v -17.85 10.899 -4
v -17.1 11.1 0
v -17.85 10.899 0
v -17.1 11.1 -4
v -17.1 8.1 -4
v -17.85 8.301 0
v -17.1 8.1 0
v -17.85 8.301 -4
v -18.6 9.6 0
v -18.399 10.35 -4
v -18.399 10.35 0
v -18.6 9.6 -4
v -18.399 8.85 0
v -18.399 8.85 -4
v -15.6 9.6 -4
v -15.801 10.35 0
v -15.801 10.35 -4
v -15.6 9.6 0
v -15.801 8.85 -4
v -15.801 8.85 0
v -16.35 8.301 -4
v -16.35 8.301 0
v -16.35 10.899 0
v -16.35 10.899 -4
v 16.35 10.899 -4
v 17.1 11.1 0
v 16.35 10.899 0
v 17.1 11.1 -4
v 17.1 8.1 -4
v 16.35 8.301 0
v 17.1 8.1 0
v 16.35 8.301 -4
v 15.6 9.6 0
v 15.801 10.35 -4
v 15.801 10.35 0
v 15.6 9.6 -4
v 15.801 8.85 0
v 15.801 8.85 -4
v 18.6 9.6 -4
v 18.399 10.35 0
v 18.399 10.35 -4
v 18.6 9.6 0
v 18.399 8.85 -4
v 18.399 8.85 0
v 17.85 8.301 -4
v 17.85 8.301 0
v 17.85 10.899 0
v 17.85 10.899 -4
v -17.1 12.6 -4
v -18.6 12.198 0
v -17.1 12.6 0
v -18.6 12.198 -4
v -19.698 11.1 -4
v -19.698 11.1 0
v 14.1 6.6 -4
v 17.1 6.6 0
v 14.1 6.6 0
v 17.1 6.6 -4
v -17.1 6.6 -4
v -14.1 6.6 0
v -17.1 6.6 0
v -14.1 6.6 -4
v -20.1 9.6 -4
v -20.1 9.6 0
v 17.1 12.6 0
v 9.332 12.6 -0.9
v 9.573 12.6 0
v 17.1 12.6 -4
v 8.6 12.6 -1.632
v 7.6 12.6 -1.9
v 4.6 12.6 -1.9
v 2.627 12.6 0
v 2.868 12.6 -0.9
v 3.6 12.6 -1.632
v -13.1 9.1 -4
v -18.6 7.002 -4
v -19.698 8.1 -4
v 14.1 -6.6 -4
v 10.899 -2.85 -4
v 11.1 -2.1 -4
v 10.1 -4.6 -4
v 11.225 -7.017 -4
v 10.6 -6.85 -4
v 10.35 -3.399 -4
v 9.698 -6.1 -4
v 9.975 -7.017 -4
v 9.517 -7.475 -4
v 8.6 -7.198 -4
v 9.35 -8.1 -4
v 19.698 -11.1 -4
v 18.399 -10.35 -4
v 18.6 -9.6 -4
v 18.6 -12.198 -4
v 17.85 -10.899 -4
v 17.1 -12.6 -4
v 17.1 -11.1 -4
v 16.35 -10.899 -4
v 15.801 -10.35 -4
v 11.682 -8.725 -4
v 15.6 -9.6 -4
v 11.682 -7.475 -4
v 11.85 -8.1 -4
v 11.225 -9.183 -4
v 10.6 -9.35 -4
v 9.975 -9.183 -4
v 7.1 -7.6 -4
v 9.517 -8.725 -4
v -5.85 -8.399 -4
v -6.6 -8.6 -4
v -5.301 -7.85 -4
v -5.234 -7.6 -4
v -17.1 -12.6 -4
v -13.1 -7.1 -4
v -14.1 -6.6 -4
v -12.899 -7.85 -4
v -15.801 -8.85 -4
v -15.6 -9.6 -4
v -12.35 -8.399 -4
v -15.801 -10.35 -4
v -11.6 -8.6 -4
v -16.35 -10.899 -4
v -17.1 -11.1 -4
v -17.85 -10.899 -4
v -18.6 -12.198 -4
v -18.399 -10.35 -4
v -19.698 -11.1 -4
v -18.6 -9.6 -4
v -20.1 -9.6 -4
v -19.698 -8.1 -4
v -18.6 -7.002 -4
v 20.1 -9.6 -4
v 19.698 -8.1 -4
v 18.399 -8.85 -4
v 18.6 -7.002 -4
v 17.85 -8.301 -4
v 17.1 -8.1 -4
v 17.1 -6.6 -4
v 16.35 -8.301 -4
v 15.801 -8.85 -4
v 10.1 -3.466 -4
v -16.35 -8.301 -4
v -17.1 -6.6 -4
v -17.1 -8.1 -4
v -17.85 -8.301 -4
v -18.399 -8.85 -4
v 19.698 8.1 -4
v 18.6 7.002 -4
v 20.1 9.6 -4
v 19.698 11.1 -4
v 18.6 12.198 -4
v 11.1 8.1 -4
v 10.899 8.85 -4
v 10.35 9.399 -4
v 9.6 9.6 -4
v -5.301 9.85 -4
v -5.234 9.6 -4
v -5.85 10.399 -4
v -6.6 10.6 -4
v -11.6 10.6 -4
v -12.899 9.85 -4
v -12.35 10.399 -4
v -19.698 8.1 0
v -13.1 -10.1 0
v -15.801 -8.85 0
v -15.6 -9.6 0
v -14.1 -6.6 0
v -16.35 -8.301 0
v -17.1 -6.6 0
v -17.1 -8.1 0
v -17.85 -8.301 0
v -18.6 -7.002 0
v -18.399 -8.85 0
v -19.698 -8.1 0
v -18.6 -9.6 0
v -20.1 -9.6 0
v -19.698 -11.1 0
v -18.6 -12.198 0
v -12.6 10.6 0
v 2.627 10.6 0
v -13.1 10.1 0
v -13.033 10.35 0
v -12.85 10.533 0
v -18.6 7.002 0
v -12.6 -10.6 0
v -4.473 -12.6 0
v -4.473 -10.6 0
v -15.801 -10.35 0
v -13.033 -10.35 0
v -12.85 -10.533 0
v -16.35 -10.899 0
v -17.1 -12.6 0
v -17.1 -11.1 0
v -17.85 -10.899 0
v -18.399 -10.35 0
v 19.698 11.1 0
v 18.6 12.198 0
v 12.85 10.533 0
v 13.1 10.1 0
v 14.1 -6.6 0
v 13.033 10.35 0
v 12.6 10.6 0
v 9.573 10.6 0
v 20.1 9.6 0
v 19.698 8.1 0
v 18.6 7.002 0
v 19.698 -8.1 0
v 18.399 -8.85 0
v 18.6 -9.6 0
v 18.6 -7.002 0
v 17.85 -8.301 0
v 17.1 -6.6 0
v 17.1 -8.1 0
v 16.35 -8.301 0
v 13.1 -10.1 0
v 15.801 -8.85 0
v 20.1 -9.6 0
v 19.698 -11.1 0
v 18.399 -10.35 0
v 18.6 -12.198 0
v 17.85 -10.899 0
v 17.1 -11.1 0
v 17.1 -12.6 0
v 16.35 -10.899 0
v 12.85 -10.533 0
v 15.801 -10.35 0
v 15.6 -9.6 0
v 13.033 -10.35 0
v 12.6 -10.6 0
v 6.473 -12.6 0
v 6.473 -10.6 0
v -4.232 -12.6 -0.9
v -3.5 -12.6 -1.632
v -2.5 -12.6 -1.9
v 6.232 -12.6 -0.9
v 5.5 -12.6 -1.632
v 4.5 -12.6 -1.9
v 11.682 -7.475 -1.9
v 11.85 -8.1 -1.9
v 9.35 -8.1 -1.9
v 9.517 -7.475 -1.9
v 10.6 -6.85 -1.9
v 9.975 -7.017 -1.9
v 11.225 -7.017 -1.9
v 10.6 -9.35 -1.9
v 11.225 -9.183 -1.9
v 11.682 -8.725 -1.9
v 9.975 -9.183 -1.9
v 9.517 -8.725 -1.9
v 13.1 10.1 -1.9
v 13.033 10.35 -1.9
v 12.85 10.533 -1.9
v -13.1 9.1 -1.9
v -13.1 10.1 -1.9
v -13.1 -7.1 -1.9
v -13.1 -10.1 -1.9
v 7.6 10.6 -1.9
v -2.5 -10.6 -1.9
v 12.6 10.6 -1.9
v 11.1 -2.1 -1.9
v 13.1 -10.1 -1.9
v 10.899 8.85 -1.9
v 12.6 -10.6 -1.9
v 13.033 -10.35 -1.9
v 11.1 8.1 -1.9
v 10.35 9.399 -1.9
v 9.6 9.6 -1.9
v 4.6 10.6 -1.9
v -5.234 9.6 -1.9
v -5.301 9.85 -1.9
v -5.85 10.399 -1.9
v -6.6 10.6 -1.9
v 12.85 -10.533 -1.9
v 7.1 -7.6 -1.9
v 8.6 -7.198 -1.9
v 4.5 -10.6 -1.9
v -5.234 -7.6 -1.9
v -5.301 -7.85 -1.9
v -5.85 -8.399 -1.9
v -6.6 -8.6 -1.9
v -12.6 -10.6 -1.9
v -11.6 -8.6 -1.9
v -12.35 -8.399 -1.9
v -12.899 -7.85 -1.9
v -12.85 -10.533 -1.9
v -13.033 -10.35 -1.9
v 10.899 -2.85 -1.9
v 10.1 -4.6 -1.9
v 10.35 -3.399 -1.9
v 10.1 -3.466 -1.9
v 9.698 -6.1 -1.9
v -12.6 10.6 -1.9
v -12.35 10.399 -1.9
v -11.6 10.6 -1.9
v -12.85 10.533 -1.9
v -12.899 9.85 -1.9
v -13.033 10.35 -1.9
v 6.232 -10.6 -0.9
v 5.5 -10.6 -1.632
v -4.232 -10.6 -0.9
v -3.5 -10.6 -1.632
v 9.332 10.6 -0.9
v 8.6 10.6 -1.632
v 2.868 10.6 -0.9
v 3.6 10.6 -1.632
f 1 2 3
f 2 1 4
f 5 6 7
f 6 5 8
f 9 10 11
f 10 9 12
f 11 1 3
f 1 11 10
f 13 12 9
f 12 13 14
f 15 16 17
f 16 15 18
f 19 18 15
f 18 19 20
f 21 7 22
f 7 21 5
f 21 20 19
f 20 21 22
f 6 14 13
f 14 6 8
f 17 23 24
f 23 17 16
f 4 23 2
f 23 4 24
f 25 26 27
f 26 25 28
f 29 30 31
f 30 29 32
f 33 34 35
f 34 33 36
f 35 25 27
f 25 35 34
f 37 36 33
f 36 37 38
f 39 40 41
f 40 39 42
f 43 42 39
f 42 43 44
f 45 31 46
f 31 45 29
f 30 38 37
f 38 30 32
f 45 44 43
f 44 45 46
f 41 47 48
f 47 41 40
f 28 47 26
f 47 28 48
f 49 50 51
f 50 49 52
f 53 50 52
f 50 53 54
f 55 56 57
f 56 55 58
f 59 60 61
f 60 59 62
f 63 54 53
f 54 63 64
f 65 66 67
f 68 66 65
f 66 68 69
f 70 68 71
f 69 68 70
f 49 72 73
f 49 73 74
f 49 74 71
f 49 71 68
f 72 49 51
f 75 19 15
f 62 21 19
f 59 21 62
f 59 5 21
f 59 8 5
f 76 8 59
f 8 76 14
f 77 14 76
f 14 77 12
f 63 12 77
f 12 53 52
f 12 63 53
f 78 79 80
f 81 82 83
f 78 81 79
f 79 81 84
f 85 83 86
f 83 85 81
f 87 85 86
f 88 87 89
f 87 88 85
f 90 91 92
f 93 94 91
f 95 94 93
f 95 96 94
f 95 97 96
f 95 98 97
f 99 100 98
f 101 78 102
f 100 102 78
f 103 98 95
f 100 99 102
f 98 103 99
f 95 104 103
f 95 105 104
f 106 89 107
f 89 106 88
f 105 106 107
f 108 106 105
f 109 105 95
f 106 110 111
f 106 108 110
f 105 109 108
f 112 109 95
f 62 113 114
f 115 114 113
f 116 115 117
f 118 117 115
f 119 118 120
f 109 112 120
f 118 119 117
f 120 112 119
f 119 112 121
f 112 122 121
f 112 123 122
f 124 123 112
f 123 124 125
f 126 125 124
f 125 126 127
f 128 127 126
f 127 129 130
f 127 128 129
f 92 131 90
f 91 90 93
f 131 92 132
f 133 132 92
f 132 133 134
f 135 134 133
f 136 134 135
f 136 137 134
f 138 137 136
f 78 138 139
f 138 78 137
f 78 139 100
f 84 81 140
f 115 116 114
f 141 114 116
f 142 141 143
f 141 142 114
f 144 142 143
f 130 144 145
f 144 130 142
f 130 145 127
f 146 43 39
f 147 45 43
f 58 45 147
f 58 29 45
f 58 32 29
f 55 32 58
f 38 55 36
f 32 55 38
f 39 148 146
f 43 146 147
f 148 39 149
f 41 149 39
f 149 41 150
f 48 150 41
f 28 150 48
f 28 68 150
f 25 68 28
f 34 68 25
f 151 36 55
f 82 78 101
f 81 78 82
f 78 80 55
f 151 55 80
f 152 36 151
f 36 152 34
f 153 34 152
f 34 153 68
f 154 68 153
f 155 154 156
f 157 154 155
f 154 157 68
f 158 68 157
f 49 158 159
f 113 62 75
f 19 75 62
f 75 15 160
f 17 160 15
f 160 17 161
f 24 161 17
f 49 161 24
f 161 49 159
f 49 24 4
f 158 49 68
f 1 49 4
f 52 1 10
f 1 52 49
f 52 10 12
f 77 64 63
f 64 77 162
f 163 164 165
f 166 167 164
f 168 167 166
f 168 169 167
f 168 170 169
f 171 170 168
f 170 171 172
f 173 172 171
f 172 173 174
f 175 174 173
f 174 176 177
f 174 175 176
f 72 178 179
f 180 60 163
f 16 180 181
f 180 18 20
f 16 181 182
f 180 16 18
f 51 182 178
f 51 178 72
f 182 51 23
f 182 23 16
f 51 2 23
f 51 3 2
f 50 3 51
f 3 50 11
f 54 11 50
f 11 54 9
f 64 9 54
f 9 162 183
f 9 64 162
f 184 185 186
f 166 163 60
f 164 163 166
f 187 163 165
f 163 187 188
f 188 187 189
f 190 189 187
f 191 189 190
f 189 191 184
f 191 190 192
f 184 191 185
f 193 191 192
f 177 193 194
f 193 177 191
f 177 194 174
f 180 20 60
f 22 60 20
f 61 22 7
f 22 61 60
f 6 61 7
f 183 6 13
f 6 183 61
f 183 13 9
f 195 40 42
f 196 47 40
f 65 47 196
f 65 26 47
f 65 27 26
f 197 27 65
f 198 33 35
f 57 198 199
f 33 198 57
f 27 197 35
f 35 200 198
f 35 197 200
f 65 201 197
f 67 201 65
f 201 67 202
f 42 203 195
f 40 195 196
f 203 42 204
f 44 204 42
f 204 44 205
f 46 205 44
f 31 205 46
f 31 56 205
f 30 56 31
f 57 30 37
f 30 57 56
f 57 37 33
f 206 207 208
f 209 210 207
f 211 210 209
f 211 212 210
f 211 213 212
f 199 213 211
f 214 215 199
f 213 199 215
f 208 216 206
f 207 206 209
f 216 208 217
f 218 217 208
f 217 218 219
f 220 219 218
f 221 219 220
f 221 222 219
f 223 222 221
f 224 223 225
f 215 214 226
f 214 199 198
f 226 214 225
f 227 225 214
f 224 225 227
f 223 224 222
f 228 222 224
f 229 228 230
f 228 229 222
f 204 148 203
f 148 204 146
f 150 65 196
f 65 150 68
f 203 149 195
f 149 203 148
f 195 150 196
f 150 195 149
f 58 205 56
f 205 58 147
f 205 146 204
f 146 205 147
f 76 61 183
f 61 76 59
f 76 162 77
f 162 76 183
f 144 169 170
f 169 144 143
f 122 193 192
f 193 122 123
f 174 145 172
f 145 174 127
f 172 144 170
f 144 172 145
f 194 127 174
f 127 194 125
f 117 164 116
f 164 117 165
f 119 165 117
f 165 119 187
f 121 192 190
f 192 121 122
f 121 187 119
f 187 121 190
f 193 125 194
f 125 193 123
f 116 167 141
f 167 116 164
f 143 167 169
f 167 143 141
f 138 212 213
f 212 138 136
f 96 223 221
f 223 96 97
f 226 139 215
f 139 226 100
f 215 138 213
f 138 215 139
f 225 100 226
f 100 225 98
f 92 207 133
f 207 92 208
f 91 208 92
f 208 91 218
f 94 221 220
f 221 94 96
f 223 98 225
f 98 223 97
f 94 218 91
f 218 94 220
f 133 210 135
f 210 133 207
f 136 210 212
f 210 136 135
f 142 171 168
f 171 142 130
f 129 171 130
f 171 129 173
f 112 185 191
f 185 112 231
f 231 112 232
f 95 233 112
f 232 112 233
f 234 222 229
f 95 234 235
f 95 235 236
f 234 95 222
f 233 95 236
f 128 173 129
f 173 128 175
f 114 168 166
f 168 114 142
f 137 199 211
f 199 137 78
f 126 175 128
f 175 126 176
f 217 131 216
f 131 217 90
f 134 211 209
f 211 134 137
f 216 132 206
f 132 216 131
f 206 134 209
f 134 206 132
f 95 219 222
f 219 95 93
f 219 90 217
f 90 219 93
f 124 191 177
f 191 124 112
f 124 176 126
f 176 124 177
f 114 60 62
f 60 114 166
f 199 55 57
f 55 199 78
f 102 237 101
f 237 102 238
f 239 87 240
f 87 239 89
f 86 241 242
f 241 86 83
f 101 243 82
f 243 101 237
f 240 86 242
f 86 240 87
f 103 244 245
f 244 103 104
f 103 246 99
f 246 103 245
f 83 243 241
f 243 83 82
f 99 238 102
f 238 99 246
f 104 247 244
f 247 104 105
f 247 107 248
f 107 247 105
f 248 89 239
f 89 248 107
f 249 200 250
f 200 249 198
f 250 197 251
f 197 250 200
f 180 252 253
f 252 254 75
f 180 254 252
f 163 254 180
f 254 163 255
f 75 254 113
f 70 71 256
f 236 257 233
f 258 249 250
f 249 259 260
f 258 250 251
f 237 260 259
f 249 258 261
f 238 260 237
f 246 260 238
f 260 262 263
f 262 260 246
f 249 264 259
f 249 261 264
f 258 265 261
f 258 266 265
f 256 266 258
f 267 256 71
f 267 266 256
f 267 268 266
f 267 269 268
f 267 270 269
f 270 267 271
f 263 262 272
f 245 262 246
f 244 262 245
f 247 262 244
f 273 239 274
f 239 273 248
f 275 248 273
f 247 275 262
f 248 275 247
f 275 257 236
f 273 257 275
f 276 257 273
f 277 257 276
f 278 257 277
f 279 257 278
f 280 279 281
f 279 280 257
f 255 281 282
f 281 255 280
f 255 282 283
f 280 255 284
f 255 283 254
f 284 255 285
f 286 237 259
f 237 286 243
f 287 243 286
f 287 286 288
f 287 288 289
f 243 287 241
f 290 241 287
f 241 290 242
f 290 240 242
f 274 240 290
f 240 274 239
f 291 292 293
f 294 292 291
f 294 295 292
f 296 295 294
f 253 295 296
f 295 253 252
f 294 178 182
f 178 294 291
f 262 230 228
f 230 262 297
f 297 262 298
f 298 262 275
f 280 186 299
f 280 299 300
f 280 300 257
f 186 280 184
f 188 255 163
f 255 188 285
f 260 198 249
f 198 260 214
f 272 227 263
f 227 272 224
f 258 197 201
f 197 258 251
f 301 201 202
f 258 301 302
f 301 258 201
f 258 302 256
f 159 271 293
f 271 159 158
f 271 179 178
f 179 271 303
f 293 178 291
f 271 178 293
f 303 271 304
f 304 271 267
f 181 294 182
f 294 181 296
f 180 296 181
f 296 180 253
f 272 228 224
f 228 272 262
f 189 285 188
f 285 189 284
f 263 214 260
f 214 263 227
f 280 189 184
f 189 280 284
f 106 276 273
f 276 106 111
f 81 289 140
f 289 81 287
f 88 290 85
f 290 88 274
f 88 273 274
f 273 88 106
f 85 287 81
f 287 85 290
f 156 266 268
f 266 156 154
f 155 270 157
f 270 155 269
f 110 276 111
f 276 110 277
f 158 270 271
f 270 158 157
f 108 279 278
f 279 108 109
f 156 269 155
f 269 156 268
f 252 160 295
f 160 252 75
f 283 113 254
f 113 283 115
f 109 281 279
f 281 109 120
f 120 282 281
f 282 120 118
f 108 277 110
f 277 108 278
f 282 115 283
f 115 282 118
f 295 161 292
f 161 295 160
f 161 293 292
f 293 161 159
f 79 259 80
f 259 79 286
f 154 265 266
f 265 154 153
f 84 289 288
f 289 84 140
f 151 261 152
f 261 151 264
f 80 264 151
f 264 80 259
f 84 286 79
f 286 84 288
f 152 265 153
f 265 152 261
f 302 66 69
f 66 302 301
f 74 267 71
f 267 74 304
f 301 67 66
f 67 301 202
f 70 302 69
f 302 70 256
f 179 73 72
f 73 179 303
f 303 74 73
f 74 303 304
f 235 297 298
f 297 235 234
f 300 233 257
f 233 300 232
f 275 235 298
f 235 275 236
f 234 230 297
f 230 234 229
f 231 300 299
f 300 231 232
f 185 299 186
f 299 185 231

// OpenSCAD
$fn=12;

boardDepth = 21.2;
boardWidth = 26.2;
boardHeigth = 10;

boardThickness = 2;

boardHoleDepth = boardDepth - 5;
boardHoleWidth = boardWidth - 5;
boardHolediamiter = 3;

baseDepth = boardDepth + 2;
baseWidth = boardWidth + 2;
baseHeigth = boardThickness + 2;

baseCornerDiameter = 4;

//% board();

translate([0,0,-baseHeigth/2])
	base();
//feet();


////////////////////////////////////////////////////////////////////////////////////////////////////
module board(){
	difference(){
		plate4Point(boardWidth,boardDepth,boardThickness,1);
		for(a=[[1,1],[-1,1],[1,-1],[-1,-1]]){
			translate([
				a[0] * boardHoleWidth/2,
				a[1] * boardHoleDepth/2,
				0
			])
				cylinder(h=5,center=true);
		}
	}
}
////////////////////////////////////////////////////////////////////////////////////////////////////
module base(){

	difference(){
		// 
		union(){
			plate4Point(baseWidth,baseDepth,baseHeigth,4);
			rotate([0,0,90]) 
				feet();
		}
		for(a=[[1,-1]]){//[[1,1],[-1,1],[1,-1],[-1,-1]]){
			translate([
				a[0] * boardHoleWidth/2,
				a[1] * boardHoleDepth/2,
				0
			])
				cylinder(h=5,d=boardHolediamiter-.5,center=true);
		}
		// Board cut out
		translate([0,0,baseHeigth-2.9]) plate4Point(boardWidth,boardDepth,boardThickness,1);
		// center cutout
		plate4Point(baseWidth-8,baseDepth-8,10,6);
		translate([0,2,0])
			plate4Point(baseWidth-8,baseDepth-8,10,6);
		//  pin cutout
		translate([(-baseWidth/2)+5,1,0])
			plate4Point(8,baseDepth-4,10,3);
		//  pin cutout button
		translate([(baseWidth/2)-6,3,0])
 			plate4Point(6,baseDepth-10,10,3);
		//  button cutout
		translate([(baseWidth/2)-8,baseDepth/2,3.1])
			rotate([90,0,0])
			plate4Point(7,6,10,4);
		//  jst cutout
		translate([(baseWidth/2)-(boardWidth/2),(-baseDepth/2),3.1])
			rotate([90,0,0])
			plate4Point(11,6,10,4);
	}

}
////////////////////////////////////////////////////////////////////////////////////////////////////
module feet(){
	
	lenAdd = 12;
	footLen = baseWidth + lenAdd;
	
 for(a=[1, -1]){
	translate([a*(baseDepth/2) - a*2, 0, 0]) 
		difference(){
			plate2Point(footLen, baseHeigth,6);
			for(b=[1,-1]){
				translate([0, b*(footLen/2) - b*3, 0])
					cylinder(h=5,d=boardHolediamiter,center=true);
			}
		}
	}
}
////////////////////////////////////////////////////////////////////////////////////////////////////
module plate4Point(x,y,z,d){
	hull(){
		color("green") translate([(x/2)-(d/2) ,(y/2) -(d/2),0]) cylinder(h=z, d=d, center=true);
		color("blue")  translate([(x/2)-(d/2) ,-(y/2)+(d/2),0]) cylinder(h=z, d=d, center=true);
		color("red")   translate([-(x/2)+(d/2),(y/2) -(d/2),0]) cylinder(h=z, d=d, center=true);
		color("grey")  translate([-(x/2)+(d/2),-(y/2)+(d/2),0]) cylinder(h=z, d=d, center=true);
	}
}
////////////////////////////////////////////////////////////////////////////////////////////////////
module plate2Point(y,z,d){
	hull(){
		color("green") translate([0 ,(y/2) -(d/2),0]) cylinder(h=z, d=d, center=true);
		color("blue")  translate([0 ,-(y/2)+(d/2),0]) cylinder(h=z, d=d, center=true);
	}
}
